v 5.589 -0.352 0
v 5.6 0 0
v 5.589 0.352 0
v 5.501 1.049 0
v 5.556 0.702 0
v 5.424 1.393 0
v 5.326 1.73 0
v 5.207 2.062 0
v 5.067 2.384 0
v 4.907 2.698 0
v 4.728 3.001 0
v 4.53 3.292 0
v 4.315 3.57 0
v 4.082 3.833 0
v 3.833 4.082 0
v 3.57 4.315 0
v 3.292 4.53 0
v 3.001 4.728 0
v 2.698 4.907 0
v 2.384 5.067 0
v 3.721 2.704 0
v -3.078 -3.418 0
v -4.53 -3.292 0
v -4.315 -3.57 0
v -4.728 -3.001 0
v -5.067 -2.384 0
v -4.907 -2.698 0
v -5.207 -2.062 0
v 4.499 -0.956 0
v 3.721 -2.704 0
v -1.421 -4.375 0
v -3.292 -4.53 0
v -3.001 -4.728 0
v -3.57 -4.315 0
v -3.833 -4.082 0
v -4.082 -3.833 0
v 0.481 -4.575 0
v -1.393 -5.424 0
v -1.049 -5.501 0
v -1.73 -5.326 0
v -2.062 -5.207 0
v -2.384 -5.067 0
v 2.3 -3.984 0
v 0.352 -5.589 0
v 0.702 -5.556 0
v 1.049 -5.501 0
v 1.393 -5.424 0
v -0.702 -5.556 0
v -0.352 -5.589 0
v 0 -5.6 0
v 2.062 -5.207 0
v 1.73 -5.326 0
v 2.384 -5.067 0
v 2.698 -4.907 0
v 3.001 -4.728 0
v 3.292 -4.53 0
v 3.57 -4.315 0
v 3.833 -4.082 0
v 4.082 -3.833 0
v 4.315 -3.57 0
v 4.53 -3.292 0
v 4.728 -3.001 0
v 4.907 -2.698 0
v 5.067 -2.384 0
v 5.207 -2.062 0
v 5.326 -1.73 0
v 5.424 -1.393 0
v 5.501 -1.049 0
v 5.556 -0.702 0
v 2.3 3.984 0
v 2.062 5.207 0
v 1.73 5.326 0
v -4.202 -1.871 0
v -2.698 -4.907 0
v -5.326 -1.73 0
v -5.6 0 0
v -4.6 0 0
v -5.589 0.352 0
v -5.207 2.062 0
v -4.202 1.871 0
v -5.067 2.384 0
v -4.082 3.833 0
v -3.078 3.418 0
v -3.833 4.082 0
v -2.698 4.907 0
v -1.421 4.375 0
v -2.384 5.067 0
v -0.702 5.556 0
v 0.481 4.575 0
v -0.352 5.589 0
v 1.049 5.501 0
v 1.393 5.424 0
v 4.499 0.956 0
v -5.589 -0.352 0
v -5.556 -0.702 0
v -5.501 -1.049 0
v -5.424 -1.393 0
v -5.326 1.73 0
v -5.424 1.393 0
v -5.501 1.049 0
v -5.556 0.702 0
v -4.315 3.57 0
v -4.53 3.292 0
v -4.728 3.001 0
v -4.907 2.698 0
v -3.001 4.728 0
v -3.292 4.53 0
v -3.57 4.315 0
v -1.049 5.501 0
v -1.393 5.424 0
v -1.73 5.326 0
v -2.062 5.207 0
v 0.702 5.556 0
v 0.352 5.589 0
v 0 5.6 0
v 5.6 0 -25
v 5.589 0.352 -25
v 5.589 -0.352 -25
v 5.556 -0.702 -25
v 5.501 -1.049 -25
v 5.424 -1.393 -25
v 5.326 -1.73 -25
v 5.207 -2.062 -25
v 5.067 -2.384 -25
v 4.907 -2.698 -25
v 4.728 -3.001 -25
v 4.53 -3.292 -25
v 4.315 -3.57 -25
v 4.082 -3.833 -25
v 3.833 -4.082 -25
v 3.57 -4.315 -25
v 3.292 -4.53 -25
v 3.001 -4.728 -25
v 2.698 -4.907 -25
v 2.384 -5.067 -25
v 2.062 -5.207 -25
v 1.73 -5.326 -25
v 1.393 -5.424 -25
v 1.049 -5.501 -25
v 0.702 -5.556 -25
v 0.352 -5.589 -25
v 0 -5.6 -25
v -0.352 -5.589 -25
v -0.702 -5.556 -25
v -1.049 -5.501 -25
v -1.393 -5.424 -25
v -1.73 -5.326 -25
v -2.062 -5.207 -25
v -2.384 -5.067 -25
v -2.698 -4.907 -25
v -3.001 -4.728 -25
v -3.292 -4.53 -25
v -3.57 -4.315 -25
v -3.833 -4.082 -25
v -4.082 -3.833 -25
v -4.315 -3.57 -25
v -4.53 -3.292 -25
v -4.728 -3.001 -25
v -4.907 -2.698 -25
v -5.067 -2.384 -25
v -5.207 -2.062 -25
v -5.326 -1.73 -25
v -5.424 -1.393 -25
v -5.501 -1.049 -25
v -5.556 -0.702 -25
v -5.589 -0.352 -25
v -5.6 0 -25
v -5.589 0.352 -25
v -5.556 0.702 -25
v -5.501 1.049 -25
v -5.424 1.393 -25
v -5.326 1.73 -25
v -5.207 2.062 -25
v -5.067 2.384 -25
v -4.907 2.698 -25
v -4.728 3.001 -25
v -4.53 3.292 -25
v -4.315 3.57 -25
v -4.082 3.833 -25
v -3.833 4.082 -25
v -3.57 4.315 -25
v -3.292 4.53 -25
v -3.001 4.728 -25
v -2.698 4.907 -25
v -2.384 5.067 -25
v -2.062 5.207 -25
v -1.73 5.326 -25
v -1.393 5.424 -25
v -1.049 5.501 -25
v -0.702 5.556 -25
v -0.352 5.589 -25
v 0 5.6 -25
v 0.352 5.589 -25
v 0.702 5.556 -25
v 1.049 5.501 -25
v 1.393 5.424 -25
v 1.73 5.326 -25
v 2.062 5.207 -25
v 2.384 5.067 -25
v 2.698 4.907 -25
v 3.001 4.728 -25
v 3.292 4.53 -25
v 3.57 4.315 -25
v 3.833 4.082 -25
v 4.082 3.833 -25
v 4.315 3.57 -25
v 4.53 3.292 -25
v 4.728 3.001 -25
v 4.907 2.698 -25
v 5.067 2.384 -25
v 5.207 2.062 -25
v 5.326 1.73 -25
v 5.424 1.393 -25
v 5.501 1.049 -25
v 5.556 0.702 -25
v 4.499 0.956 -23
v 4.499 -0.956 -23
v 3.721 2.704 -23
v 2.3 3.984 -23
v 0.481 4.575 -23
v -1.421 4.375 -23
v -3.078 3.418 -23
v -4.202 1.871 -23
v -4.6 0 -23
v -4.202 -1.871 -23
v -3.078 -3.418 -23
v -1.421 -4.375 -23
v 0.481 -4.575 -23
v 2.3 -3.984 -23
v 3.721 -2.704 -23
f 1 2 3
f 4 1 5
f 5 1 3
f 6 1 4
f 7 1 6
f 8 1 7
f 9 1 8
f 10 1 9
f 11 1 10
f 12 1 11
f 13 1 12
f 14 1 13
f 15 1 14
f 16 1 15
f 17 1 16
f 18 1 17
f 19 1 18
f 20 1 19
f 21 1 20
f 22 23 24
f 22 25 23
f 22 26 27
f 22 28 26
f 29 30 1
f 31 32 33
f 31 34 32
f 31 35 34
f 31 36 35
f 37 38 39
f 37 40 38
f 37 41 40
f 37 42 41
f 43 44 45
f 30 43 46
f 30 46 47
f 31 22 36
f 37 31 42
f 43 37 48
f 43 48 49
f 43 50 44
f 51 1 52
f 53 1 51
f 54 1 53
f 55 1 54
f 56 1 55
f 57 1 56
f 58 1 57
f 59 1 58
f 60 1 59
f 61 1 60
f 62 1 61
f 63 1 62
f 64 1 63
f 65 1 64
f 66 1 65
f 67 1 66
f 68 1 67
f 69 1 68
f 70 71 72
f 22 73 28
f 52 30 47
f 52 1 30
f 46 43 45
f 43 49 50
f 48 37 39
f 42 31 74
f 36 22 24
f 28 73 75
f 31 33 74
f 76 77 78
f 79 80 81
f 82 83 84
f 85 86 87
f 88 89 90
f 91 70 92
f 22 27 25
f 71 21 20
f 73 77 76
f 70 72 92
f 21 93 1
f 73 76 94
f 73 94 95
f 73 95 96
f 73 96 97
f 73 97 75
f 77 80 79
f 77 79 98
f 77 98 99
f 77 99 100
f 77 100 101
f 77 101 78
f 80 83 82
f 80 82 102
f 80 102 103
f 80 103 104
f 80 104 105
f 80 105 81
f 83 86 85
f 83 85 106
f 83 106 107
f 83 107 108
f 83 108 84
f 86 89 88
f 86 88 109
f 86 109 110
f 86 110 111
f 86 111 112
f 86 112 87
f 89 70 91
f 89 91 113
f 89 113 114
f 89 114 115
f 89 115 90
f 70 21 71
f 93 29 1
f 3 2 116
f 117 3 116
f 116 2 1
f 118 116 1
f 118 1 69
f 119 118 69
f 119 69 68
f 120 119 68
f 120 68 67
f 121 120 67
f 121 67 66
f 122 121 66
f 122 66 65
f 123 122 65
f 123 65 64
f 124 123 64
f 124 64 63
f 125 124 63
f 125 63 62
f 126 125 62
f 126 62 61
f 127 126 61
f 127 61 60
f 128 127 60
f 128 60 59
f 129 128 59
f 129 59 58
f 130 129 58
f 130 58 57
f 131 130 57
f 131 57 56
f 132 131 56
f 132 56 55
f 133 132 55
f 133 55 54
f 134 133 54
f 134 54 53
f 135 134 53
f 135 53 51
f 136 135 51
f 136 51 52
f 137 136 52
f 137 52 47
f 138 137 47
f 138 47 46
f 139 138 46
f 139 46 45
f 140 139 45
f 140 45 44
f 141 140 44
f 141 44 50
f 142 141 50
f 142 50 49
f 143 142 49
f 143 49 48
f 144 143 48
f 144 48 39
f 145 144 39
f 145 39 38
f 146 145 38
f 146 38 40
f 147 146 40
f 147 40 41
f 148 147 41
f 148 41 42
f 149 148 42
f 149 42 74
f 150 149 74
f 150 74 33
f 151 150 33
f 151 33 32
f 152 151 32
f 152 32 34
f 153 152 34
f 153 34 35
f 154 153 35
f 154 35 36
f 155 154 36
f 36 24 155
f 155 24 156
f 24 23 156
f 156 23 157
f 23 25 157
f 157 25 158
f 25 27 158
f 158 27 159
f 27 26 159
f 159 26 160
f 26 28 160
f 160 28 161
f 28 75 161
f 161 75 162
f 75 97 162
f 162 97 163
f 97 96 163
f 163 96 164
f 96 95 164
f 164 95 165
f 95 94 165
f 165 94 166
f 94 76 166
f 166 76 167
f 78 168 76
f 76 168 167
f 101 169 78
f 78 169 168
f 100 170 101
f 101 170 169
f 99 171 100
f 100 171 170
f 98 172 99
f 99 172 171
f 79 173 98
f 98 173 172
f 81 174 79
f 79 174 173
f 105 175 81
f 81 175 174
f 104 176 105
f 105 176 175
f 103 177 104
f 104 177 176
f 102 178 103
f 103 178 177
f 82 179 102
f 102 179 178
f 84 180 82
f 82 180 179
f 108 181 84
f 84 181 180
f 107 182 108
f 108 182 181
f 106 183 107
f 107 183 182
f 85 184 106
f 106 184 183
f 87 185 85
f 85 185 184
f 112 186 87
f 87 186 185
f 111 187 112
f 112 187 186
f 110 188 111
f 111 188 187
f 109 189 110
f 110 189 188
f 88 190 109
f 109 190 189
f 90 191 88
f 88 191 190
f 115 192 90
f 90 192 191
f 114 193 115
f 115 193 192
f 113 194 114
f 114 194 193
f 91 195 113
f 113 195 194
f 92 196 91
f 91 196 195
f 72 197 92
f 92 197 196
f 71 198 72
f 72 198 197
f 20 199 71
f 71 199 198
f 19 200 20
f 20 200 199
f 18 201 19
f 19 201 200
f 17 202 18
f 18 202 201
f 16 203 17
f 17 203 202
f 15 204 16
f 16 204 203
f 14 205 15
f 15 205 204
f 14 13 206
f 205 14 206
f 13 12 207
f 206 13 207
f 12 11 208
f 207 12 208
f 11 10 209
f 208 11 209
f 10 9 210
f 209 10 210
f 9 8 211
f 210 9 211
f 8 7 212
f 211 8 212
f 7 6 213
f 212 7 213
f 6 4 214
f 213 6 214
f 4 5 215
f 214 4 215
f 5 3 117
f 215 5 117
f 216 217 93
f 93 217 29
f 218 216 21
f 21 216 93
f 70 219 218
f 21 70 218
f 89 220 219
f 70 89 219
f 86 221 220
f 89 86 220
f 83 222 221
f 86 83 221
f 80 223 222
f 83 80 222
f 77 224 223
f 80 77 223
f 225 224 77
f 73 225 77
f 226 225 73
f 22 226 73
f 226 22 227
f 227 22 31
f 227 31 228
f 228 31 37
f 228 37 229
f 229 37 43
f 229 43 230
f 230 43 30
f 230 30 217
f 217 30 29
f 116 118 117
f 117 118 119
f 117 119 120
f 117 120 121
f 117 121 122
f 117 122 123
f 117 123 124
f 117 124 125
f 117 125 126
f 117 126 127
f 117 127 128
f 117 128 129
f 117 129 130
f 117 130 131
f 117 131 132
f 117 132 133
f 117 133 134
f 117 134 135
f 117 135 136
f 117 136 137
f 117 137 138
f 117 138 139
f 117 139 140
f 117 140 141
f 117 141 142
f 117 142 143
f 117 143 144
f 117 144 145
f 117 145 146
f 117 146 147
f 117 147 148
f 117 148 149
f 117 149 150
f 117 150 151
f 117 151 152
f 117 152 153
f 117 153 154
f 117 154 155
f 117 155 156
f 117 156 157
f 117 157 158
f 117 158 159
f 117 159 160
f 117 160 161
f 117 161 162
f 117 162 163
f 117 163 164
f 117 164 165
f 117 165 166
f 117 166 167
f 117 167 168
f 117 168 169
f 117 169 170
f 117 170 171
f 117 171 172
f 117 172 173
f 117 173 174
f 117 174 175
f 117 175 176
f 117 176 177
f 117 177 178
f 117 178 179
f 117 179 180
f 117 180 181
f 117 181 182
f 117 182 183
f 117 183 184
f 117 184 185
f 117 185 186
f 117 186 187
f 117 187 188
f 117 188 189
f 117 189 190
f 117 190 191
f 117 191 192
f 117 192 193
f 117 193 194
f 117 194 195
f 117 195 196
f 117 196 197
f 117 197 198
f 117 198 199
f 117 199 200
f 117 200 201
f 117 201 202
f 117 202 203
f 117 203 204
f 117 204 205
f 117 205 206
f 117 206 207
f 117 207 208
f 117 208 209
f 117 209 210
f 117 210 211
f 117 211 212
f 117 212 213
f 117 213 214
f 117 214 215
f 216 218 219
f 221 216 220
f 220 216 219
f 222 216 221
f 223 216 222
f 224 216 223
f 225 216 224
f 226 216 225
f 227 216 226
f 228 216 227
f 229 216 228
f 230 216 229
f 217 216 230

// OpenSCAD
longitud = 25; //mm
radio_ext = 5.6; //mm
ancho = 1;		//mm
tapa= 2;
rotate([0,180,0])
difference(){
	cylinder(r=radio_ext,h=longitud,$fn=100);
	cylinder(r=(radio_ext-ancho),h=(longitud-tapa));
}
